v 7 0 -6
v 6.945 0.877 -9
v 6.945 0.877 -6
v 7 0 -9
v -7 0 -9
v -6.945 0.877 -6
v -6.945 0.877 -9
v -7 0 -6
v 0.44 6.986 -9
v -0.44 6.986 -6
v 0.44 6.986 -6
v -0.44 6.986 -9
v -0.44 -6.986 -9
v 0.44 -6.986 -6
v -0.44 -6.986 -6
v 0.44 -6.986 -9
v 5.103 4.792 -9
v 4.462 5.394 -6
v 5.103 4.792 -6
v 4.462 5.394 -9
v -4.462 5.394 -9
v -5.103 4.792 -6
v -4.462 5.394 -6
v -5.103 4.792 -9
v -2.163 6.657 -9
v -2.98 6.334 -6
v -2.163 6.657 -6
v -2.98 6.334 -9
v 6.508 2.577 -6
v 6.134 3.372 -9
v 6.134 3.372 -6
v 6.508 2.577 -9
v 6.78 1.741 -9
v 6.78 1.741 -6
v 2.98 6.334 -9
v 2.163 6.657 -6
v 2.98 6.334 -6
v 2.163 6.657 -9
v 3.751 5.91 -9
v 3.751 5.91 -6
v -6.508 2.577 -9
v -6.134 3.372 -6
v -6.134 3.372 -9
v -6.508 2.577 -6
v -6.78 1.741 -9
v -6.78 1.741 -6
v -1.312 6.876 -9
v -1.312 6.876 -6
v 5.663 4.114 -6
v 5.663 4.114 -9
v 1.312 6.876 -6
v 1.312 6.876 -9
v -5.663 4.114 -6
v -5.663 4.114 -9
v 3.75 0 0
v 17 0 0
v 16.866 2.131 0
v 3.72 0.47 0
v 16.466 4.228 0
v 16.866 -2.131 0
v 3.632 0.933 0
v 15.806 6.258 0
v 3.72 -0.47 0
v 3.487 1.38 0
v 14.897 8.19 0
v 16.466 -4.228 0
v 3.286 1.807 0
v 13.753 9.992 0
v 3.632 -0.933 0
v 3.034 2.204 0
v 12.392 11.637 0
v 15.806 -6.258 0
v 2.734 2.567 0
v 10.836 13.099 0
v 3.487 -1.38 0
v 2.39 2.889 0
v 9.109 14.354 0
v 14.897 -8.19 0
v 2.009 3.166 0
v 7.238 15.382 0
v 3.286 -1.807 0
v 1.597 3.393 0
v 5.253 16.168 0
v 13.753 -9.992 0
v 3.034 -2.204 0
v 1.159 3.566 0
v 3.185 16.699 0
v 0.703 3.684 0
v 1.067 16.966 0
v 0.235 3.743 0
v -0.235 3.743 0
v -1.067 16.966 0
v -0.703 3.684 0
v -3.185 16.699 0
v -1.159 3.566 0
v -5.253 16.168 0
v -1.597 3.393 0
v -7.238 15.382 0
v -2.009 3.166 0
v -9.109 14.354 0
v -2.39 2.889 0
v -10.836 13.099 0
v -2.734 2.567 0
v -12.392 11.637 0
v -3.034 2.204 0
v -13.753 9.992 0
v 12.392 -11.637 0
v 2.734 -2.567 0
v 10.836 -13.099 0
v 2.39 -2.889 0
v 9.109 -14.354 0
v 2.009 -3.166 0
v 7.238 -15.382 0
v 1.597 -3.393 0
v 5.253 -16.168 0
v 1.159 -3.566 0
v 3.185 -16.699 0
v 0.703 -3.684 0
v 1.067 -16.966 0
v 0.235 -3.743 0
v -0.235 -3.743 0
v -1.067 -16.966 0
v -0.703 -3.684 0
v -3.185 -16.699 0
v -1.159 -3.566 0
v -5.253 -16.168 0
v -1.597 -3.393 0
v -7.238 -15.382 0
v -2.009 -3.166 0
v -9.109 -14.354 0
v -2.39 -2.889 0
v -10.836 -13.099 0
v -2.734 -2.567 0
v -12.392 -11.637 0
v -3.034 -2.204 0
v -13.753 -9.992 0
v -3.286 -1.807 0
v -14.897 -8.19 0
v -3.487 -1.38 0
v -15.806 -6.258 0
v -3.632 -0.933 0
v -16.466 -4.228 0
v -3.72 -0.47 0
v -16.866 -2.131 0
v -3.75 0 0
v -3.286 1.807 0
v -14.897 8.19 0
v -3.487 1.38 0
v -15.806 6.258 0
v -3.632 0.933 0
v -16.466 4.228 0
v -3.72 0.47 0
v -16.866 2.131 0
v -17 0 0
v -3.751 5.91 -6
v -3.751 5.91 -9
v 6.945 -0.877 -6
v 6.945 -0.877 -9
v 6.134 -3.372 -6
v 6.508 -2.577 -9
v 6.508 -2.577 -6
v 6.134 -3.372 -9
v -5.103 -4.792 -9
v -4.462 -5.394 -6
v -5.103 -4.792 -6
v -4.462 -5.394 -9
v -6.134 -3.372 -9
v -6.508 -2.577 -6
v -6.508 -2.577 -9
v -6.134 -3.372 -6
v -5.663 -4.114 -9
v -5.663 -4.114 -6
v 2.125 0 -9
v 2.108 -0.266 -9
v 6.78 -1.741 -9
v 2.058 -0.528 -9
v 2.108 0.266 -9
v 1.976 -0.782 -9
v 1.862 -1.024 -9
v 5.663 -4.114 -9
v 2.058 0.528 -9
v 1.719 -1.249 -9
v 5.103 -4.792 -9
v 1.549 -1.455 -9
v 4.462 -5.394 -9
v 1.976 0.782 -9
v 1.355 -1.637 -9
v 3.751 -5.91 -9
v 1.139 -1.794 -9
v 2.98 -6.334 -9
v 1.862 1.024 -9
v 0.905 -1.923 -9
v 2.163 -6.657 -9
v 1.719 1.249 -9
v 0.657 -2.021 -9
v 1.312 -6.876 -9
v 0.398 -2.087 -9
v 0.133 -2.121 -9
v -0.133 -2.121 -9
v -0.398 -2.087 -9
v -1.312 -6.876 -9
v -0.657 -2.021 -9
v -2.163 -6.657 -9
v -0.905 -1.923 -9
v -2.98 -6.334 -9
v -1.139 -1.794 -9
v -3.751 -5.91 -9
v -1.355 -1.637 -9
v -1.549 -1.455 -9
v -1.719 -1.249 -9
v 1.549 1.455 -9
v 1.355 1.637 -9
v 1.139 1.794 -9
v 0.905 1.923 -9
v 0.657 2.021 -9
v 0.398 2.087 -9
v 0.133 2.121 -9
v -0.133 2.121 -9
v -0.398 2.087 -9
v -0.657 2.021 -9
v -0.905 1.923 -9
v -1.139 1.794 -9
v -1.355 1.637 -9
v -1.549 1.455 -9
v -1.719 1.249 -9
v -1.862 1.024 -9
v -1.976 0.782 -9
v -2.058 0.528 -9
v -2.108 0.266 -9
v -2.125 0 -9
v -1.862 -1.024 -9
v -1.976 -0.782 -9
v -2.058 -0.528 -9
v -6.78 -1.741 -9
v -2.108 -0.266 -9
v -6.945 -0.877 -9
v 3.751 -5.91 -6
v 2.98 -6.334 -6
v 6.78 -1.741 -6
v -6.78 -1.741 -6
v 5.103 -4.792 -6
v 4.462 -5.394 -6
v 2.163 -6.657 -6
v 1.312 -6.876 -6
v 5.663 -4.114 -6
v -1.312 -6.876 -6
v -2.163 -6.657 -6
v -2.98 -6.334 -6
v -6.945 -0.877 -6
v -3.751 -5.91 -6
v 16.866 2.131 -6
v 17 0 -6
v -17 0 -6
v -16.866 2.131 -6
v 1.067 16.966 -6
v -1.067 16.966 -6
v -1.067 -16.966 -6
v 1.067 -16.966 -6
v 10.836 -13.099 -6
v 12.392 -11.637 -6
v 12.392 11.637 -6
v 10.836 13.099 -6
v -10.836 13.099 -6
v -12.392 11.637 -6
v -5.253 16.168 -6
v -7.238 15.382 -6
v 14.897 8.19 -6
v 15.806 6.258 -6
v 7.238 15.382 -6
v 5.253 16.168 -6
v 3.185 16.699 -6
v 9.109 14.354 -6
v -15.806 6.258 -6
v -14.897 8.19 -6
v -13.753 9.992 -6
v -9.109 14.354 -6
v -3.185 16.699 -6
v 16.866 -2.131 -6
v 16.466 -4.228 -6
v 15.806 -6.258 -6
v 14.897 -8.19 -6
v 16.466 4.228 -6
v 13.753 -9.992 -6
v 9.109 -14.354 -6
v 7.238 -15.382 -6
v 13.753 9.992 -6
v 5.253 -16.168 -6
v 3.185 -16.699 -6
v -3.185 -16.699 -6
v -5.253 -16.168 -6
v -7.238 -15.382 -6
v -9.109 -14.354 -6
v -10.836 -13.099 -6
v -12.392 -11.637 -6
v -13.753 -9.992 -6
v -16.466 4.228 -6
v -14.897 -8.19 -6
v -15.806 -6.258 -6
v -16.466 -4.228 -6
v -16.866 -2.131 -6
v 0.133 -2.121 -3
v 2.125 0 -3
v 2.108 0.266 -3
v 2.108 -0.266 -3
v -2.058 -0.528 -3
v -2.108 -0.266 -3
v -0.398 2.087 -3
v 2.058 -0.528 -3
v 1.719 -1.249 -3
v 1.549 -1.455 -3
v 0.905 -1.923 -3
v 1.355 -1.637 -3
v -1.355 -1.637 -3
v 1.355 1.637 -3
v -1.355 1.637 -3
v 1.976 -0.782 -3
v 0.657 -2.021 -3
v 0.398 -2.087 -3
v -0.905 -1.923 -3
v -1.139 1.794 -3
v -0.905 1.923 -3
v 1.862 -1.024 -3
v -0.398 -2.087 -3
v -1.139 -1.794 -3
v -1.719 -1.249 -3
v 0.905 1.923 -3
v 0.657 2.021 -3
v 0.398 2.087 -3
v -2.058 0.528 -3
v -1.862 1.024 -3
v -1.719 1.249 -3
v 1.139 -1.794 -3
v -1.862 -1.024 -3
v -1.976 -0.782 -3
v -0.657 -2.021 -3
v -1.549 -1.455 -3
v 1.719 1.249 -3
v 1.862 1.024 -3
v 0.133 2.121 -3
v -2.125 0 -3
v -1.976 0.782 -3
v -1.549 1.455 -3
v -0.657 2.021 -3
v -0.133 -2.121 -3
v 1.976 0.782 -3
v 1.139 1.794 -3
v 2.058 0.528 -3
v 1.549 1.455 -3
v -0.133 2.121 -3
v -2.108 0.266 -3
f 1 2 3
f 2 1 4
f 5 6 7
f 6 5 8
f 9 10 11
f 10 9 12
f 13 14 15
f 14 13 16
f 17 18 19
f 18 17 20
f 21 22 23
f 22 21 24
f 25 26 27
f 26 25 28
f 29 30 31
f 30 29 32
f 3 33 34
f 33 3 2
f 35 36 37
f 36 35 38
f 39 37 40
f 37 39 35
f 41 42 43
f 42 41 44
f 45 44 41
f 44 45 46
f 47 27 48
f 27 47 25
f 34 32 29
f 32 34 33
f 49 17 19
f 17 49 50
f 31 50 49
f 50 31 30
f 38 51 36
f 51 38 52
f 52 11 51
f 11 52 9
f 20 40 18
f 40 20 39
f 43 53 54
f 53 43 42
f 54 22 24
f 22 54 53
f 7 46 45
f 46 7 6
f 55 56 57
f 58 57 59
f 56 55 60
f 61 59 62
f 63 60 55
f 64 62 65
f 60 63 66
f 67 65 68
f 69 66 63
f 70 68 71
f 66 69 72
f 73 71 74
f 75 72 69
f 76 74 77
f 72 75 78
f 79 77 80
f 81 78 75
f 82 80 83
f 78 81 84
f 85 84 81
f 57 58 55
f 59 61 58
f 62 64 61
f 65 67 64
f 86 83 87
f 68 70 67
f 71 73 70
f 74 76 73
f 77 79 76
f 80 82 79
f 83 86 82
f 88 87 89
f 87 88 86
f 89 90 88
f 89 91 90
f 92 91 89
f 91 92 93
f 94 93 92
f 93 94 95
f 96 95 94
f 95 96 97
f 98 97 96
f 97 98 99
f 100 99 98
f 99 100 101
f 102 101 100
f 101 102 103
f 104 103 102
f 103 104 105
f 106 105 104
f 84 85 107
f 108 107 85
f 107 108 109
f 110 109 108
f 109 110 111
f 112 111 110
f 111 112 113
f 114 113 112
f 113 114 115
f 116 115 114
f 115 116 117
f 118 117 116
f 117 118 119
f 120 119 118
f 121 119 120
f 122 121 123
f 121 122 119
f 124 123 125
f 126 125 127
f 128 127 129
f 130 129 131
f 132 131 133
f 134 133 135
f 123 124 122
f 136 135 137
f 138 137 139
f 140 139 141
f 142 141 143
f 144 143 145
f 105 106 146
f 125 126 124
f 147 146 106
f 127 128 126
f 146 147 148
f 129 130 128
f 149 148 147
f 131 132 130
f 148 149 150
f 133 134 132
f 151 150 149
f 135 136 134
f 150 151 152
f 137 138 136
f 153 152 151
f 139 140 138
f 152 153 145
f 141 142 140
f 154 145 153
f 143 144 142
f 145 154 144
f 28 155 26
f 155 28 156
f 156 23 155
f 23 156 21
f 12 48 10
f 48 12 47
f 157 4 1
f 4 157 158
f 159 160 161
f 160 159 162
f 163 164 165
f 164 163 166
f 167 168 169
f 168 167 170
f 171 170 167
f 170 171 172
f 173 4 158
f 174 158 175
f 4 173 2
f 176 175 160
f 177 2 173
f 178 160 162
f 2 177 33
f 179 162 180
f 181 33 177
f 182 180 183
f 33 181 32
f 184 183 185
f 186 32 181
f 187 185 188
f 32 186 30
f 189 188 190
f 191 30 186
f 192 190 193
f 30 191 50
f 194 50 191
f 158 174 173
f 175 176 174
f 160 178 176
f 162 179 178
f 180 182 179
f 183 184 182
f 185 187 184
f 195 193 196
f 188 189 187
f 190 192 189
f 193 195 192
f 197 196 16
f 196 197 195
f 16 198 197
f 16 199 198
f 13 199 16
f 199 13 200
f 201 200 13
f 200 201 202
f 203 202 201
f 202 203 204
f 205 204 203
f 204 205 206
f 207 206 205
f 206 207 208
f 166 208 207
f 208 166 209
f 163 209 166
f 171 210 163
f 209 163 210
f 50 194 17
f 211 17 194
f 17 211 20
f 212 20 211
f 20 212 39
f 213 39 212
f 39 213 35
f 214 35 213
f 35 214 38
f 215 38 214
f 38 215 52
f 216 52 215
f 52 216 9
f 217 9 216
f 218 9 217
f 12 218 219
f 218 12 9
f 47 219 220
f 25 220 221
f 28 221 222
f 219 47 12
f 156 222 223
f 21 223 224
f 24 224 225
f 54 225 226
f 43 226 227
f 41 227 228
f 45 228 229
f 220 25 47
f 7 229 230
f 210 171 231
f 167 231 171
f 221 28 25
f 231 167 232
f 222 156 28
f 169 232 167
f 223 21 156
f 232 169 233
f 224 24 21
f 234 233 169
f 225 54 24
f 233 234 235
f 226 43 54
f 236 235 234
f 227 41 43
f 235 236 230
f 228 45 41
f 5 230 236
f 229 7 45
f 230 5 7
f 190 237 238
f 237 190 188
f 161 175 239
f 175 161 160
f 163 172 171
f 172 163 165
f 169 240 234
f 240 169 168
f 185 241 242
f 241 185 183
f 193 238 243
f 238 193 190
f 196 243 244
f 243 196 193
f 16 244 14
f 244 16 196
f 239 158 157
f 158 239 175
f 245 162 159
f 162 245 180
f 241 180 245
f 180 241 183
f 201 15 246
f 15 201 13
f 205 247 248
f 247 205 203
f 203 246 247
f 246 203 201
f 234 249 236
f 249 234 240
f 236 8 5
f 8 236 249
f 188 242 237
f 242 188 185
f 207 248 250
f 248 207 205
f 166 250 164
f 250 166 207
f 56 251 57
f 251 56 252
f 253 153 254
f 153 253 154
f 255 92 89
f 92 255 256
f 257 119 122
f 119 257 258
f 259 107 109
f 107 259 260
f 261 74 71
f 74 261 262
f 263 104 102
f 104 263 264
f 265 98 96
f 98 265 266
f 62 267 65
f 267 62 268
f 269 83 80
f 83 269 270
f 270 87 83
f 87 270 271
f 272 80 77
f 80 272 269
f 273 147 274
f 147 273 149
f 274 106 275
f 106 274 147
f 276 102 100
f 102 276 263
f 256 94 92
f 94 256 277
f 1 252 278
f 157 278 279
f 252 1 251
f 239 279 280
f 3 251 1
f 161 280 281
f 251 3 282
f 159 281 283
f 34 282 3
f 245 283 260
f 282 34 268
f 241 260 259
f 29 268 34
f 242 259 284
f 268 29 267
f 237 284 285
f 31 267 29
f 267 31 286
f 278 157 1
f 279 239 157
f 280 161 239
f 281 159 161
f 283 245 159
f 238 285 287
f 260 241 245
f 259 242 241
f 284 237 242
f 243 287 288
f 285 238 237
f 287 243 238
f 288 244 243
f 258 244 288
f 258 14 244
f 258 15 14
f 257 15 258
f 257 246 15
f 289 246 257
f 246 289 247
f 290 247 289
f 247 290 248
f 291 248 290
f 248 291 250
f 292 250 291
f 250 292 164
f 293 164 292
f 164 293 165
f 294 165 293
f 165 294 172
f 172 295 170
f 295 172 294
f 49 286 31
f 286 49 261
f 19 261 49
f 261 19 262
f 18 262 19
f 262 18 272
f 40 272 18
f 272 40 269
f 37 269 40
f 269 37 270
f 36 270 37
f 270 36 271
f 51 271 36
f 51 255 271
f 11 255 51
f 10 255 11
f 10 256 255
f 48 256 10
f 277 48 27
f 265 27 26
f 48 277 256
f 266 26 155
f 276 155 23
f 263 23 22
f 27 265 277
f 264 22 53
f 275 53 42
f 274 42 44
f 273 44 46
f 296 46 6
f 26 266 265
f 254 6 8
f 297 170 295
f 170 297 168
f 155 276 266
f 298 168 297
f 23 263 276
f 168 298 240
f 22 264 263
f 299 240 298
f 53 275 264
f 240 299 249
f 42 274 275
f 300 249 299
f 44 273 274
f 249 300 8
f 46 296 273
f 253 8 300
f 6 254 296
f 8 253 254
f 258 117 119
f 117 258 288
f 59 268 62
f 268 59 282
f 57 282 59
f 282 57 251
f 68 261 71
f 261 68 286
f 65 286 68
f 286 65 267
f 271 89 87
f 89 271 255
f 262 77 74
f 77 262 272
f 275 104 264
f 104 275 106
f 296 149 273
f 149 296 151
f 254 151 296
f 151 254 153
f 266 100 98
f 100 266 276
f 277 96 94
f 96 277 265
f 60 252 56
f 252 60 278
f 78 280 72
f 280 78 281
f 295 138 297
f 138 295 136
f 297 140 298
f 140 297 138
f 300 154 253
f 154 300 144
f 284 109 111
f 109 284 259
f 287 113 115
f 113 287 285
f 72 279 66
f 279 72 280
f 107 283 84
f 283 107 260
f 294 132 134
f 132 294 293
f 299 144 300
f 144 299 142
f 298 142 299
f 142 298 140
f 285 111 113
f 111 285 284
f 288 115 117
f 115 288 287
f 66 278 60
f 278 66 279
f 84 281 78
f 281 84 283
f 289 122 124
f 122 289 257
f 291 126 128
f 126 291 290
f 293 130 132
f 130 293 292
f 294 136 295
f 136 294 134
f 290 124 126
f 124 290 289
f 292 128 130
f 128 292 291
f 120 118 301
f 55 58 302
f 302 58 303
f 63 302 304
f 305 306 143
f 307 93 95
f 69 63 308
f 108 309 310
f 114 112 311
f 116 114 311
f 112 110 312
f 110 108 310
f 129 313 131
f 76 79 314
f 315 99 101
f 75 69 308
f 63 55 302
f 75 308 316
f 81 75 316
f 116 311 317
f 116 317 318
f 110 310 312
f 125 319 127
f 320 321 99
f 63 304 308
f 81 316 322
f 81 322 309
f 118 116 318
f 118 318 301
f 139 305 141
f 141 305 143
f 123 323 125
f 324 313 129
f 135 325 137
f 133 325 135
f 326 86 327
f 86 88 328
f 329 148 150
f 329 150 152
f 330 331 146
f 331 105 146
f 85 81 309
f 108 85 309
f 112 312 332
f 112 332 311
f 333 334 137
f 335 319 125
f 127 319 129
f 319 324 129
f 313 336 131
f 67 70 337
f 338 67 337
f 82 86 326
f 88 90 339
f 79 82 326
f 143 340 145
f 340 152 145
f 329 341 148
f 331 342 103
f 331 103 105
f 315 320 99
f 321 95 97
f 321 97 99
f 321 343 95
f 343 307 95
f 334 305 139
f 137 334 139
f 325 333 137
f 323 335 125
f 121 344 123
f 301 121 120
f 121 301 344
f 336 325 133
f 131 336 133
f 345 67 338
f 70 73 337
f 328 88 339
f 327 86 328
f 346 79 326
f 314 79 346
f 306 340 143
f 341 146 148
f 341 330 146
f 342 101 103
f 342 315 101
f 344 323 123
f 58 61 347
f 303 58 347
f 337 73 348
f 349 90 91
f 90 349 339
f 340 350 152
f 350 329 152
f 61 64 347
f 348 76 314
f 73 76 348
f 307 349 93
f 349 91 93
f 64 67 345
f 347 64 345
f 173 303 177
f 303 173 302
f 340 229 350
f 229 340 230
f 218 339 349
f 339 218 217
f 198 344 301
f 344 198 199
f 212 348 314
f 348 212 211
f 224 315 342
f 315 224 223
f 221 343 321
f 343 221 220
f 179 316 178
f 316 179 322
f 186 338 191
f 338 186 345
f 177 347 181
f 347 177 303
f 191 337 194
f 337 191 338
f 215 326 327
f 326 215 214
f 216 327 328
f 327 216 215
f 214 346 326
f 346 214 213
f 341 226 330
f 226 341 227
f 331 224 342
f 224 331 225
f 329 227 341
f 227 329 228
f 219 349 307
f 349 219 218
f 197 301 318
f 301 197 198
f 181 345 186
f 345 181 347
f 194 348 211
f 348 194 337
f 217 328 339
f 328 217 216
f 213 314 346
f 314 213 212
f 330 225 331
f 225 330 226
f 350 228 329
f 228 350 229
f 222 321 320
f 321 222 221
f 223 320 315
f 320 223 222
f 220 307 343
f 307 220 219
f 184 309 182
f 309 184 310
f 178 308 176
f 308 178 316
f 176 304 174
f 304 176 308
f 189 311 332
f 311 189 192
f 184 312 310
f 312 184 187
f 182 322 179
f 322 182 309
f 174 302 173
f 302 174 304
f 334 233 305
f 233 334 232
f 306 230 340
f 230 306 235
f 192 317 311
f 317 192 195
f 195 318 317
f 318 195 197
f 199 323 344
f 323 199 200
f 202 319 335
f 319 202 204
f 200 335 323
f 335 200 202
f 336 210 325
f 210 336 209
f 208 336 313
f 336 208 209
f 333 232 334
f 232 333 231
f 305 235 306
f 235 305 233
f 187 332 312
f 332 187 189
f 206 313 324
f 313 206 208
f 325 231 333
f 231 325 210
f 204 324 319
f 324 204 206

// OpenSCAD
$fn = 50;


difference() {
	union() {
		translate(v = [0, 0, -9.0000000000]) {
			cylinder(h = 9, r = 7.0000000000);
		}
		translate(v = [0, 0, -6.0000000000]) {
			cylinder(h = 6, r = 17.0000000000);
		}
	}
	union() {
		translate(v = [0, 0, 0]) {
			rotate(a = [0, 0, 0]) {
				difference() {
					union() {
						#translate(v = [0, 0, -9.0000000000]) {
							cylinder(h = 9, r = 2.0000000000);
						}
						#translate(v = [0, 0, -3]) {
							cylinder(h = 3, r = 7.0000000000, r1 = 2.1250000000, r2 = 3.7500000000);
						}
						#translate(v = [0, 0, -9.0000000000]) {
							cylinder(h = 9, r = 2.1250000000);
						}
						#translate(v = [0, 0, -9.0000000000]) {
							cylinder(h = 9, r = 2.0000000000);
						}
					}
					union();
				}
			}
		}
	}
}
